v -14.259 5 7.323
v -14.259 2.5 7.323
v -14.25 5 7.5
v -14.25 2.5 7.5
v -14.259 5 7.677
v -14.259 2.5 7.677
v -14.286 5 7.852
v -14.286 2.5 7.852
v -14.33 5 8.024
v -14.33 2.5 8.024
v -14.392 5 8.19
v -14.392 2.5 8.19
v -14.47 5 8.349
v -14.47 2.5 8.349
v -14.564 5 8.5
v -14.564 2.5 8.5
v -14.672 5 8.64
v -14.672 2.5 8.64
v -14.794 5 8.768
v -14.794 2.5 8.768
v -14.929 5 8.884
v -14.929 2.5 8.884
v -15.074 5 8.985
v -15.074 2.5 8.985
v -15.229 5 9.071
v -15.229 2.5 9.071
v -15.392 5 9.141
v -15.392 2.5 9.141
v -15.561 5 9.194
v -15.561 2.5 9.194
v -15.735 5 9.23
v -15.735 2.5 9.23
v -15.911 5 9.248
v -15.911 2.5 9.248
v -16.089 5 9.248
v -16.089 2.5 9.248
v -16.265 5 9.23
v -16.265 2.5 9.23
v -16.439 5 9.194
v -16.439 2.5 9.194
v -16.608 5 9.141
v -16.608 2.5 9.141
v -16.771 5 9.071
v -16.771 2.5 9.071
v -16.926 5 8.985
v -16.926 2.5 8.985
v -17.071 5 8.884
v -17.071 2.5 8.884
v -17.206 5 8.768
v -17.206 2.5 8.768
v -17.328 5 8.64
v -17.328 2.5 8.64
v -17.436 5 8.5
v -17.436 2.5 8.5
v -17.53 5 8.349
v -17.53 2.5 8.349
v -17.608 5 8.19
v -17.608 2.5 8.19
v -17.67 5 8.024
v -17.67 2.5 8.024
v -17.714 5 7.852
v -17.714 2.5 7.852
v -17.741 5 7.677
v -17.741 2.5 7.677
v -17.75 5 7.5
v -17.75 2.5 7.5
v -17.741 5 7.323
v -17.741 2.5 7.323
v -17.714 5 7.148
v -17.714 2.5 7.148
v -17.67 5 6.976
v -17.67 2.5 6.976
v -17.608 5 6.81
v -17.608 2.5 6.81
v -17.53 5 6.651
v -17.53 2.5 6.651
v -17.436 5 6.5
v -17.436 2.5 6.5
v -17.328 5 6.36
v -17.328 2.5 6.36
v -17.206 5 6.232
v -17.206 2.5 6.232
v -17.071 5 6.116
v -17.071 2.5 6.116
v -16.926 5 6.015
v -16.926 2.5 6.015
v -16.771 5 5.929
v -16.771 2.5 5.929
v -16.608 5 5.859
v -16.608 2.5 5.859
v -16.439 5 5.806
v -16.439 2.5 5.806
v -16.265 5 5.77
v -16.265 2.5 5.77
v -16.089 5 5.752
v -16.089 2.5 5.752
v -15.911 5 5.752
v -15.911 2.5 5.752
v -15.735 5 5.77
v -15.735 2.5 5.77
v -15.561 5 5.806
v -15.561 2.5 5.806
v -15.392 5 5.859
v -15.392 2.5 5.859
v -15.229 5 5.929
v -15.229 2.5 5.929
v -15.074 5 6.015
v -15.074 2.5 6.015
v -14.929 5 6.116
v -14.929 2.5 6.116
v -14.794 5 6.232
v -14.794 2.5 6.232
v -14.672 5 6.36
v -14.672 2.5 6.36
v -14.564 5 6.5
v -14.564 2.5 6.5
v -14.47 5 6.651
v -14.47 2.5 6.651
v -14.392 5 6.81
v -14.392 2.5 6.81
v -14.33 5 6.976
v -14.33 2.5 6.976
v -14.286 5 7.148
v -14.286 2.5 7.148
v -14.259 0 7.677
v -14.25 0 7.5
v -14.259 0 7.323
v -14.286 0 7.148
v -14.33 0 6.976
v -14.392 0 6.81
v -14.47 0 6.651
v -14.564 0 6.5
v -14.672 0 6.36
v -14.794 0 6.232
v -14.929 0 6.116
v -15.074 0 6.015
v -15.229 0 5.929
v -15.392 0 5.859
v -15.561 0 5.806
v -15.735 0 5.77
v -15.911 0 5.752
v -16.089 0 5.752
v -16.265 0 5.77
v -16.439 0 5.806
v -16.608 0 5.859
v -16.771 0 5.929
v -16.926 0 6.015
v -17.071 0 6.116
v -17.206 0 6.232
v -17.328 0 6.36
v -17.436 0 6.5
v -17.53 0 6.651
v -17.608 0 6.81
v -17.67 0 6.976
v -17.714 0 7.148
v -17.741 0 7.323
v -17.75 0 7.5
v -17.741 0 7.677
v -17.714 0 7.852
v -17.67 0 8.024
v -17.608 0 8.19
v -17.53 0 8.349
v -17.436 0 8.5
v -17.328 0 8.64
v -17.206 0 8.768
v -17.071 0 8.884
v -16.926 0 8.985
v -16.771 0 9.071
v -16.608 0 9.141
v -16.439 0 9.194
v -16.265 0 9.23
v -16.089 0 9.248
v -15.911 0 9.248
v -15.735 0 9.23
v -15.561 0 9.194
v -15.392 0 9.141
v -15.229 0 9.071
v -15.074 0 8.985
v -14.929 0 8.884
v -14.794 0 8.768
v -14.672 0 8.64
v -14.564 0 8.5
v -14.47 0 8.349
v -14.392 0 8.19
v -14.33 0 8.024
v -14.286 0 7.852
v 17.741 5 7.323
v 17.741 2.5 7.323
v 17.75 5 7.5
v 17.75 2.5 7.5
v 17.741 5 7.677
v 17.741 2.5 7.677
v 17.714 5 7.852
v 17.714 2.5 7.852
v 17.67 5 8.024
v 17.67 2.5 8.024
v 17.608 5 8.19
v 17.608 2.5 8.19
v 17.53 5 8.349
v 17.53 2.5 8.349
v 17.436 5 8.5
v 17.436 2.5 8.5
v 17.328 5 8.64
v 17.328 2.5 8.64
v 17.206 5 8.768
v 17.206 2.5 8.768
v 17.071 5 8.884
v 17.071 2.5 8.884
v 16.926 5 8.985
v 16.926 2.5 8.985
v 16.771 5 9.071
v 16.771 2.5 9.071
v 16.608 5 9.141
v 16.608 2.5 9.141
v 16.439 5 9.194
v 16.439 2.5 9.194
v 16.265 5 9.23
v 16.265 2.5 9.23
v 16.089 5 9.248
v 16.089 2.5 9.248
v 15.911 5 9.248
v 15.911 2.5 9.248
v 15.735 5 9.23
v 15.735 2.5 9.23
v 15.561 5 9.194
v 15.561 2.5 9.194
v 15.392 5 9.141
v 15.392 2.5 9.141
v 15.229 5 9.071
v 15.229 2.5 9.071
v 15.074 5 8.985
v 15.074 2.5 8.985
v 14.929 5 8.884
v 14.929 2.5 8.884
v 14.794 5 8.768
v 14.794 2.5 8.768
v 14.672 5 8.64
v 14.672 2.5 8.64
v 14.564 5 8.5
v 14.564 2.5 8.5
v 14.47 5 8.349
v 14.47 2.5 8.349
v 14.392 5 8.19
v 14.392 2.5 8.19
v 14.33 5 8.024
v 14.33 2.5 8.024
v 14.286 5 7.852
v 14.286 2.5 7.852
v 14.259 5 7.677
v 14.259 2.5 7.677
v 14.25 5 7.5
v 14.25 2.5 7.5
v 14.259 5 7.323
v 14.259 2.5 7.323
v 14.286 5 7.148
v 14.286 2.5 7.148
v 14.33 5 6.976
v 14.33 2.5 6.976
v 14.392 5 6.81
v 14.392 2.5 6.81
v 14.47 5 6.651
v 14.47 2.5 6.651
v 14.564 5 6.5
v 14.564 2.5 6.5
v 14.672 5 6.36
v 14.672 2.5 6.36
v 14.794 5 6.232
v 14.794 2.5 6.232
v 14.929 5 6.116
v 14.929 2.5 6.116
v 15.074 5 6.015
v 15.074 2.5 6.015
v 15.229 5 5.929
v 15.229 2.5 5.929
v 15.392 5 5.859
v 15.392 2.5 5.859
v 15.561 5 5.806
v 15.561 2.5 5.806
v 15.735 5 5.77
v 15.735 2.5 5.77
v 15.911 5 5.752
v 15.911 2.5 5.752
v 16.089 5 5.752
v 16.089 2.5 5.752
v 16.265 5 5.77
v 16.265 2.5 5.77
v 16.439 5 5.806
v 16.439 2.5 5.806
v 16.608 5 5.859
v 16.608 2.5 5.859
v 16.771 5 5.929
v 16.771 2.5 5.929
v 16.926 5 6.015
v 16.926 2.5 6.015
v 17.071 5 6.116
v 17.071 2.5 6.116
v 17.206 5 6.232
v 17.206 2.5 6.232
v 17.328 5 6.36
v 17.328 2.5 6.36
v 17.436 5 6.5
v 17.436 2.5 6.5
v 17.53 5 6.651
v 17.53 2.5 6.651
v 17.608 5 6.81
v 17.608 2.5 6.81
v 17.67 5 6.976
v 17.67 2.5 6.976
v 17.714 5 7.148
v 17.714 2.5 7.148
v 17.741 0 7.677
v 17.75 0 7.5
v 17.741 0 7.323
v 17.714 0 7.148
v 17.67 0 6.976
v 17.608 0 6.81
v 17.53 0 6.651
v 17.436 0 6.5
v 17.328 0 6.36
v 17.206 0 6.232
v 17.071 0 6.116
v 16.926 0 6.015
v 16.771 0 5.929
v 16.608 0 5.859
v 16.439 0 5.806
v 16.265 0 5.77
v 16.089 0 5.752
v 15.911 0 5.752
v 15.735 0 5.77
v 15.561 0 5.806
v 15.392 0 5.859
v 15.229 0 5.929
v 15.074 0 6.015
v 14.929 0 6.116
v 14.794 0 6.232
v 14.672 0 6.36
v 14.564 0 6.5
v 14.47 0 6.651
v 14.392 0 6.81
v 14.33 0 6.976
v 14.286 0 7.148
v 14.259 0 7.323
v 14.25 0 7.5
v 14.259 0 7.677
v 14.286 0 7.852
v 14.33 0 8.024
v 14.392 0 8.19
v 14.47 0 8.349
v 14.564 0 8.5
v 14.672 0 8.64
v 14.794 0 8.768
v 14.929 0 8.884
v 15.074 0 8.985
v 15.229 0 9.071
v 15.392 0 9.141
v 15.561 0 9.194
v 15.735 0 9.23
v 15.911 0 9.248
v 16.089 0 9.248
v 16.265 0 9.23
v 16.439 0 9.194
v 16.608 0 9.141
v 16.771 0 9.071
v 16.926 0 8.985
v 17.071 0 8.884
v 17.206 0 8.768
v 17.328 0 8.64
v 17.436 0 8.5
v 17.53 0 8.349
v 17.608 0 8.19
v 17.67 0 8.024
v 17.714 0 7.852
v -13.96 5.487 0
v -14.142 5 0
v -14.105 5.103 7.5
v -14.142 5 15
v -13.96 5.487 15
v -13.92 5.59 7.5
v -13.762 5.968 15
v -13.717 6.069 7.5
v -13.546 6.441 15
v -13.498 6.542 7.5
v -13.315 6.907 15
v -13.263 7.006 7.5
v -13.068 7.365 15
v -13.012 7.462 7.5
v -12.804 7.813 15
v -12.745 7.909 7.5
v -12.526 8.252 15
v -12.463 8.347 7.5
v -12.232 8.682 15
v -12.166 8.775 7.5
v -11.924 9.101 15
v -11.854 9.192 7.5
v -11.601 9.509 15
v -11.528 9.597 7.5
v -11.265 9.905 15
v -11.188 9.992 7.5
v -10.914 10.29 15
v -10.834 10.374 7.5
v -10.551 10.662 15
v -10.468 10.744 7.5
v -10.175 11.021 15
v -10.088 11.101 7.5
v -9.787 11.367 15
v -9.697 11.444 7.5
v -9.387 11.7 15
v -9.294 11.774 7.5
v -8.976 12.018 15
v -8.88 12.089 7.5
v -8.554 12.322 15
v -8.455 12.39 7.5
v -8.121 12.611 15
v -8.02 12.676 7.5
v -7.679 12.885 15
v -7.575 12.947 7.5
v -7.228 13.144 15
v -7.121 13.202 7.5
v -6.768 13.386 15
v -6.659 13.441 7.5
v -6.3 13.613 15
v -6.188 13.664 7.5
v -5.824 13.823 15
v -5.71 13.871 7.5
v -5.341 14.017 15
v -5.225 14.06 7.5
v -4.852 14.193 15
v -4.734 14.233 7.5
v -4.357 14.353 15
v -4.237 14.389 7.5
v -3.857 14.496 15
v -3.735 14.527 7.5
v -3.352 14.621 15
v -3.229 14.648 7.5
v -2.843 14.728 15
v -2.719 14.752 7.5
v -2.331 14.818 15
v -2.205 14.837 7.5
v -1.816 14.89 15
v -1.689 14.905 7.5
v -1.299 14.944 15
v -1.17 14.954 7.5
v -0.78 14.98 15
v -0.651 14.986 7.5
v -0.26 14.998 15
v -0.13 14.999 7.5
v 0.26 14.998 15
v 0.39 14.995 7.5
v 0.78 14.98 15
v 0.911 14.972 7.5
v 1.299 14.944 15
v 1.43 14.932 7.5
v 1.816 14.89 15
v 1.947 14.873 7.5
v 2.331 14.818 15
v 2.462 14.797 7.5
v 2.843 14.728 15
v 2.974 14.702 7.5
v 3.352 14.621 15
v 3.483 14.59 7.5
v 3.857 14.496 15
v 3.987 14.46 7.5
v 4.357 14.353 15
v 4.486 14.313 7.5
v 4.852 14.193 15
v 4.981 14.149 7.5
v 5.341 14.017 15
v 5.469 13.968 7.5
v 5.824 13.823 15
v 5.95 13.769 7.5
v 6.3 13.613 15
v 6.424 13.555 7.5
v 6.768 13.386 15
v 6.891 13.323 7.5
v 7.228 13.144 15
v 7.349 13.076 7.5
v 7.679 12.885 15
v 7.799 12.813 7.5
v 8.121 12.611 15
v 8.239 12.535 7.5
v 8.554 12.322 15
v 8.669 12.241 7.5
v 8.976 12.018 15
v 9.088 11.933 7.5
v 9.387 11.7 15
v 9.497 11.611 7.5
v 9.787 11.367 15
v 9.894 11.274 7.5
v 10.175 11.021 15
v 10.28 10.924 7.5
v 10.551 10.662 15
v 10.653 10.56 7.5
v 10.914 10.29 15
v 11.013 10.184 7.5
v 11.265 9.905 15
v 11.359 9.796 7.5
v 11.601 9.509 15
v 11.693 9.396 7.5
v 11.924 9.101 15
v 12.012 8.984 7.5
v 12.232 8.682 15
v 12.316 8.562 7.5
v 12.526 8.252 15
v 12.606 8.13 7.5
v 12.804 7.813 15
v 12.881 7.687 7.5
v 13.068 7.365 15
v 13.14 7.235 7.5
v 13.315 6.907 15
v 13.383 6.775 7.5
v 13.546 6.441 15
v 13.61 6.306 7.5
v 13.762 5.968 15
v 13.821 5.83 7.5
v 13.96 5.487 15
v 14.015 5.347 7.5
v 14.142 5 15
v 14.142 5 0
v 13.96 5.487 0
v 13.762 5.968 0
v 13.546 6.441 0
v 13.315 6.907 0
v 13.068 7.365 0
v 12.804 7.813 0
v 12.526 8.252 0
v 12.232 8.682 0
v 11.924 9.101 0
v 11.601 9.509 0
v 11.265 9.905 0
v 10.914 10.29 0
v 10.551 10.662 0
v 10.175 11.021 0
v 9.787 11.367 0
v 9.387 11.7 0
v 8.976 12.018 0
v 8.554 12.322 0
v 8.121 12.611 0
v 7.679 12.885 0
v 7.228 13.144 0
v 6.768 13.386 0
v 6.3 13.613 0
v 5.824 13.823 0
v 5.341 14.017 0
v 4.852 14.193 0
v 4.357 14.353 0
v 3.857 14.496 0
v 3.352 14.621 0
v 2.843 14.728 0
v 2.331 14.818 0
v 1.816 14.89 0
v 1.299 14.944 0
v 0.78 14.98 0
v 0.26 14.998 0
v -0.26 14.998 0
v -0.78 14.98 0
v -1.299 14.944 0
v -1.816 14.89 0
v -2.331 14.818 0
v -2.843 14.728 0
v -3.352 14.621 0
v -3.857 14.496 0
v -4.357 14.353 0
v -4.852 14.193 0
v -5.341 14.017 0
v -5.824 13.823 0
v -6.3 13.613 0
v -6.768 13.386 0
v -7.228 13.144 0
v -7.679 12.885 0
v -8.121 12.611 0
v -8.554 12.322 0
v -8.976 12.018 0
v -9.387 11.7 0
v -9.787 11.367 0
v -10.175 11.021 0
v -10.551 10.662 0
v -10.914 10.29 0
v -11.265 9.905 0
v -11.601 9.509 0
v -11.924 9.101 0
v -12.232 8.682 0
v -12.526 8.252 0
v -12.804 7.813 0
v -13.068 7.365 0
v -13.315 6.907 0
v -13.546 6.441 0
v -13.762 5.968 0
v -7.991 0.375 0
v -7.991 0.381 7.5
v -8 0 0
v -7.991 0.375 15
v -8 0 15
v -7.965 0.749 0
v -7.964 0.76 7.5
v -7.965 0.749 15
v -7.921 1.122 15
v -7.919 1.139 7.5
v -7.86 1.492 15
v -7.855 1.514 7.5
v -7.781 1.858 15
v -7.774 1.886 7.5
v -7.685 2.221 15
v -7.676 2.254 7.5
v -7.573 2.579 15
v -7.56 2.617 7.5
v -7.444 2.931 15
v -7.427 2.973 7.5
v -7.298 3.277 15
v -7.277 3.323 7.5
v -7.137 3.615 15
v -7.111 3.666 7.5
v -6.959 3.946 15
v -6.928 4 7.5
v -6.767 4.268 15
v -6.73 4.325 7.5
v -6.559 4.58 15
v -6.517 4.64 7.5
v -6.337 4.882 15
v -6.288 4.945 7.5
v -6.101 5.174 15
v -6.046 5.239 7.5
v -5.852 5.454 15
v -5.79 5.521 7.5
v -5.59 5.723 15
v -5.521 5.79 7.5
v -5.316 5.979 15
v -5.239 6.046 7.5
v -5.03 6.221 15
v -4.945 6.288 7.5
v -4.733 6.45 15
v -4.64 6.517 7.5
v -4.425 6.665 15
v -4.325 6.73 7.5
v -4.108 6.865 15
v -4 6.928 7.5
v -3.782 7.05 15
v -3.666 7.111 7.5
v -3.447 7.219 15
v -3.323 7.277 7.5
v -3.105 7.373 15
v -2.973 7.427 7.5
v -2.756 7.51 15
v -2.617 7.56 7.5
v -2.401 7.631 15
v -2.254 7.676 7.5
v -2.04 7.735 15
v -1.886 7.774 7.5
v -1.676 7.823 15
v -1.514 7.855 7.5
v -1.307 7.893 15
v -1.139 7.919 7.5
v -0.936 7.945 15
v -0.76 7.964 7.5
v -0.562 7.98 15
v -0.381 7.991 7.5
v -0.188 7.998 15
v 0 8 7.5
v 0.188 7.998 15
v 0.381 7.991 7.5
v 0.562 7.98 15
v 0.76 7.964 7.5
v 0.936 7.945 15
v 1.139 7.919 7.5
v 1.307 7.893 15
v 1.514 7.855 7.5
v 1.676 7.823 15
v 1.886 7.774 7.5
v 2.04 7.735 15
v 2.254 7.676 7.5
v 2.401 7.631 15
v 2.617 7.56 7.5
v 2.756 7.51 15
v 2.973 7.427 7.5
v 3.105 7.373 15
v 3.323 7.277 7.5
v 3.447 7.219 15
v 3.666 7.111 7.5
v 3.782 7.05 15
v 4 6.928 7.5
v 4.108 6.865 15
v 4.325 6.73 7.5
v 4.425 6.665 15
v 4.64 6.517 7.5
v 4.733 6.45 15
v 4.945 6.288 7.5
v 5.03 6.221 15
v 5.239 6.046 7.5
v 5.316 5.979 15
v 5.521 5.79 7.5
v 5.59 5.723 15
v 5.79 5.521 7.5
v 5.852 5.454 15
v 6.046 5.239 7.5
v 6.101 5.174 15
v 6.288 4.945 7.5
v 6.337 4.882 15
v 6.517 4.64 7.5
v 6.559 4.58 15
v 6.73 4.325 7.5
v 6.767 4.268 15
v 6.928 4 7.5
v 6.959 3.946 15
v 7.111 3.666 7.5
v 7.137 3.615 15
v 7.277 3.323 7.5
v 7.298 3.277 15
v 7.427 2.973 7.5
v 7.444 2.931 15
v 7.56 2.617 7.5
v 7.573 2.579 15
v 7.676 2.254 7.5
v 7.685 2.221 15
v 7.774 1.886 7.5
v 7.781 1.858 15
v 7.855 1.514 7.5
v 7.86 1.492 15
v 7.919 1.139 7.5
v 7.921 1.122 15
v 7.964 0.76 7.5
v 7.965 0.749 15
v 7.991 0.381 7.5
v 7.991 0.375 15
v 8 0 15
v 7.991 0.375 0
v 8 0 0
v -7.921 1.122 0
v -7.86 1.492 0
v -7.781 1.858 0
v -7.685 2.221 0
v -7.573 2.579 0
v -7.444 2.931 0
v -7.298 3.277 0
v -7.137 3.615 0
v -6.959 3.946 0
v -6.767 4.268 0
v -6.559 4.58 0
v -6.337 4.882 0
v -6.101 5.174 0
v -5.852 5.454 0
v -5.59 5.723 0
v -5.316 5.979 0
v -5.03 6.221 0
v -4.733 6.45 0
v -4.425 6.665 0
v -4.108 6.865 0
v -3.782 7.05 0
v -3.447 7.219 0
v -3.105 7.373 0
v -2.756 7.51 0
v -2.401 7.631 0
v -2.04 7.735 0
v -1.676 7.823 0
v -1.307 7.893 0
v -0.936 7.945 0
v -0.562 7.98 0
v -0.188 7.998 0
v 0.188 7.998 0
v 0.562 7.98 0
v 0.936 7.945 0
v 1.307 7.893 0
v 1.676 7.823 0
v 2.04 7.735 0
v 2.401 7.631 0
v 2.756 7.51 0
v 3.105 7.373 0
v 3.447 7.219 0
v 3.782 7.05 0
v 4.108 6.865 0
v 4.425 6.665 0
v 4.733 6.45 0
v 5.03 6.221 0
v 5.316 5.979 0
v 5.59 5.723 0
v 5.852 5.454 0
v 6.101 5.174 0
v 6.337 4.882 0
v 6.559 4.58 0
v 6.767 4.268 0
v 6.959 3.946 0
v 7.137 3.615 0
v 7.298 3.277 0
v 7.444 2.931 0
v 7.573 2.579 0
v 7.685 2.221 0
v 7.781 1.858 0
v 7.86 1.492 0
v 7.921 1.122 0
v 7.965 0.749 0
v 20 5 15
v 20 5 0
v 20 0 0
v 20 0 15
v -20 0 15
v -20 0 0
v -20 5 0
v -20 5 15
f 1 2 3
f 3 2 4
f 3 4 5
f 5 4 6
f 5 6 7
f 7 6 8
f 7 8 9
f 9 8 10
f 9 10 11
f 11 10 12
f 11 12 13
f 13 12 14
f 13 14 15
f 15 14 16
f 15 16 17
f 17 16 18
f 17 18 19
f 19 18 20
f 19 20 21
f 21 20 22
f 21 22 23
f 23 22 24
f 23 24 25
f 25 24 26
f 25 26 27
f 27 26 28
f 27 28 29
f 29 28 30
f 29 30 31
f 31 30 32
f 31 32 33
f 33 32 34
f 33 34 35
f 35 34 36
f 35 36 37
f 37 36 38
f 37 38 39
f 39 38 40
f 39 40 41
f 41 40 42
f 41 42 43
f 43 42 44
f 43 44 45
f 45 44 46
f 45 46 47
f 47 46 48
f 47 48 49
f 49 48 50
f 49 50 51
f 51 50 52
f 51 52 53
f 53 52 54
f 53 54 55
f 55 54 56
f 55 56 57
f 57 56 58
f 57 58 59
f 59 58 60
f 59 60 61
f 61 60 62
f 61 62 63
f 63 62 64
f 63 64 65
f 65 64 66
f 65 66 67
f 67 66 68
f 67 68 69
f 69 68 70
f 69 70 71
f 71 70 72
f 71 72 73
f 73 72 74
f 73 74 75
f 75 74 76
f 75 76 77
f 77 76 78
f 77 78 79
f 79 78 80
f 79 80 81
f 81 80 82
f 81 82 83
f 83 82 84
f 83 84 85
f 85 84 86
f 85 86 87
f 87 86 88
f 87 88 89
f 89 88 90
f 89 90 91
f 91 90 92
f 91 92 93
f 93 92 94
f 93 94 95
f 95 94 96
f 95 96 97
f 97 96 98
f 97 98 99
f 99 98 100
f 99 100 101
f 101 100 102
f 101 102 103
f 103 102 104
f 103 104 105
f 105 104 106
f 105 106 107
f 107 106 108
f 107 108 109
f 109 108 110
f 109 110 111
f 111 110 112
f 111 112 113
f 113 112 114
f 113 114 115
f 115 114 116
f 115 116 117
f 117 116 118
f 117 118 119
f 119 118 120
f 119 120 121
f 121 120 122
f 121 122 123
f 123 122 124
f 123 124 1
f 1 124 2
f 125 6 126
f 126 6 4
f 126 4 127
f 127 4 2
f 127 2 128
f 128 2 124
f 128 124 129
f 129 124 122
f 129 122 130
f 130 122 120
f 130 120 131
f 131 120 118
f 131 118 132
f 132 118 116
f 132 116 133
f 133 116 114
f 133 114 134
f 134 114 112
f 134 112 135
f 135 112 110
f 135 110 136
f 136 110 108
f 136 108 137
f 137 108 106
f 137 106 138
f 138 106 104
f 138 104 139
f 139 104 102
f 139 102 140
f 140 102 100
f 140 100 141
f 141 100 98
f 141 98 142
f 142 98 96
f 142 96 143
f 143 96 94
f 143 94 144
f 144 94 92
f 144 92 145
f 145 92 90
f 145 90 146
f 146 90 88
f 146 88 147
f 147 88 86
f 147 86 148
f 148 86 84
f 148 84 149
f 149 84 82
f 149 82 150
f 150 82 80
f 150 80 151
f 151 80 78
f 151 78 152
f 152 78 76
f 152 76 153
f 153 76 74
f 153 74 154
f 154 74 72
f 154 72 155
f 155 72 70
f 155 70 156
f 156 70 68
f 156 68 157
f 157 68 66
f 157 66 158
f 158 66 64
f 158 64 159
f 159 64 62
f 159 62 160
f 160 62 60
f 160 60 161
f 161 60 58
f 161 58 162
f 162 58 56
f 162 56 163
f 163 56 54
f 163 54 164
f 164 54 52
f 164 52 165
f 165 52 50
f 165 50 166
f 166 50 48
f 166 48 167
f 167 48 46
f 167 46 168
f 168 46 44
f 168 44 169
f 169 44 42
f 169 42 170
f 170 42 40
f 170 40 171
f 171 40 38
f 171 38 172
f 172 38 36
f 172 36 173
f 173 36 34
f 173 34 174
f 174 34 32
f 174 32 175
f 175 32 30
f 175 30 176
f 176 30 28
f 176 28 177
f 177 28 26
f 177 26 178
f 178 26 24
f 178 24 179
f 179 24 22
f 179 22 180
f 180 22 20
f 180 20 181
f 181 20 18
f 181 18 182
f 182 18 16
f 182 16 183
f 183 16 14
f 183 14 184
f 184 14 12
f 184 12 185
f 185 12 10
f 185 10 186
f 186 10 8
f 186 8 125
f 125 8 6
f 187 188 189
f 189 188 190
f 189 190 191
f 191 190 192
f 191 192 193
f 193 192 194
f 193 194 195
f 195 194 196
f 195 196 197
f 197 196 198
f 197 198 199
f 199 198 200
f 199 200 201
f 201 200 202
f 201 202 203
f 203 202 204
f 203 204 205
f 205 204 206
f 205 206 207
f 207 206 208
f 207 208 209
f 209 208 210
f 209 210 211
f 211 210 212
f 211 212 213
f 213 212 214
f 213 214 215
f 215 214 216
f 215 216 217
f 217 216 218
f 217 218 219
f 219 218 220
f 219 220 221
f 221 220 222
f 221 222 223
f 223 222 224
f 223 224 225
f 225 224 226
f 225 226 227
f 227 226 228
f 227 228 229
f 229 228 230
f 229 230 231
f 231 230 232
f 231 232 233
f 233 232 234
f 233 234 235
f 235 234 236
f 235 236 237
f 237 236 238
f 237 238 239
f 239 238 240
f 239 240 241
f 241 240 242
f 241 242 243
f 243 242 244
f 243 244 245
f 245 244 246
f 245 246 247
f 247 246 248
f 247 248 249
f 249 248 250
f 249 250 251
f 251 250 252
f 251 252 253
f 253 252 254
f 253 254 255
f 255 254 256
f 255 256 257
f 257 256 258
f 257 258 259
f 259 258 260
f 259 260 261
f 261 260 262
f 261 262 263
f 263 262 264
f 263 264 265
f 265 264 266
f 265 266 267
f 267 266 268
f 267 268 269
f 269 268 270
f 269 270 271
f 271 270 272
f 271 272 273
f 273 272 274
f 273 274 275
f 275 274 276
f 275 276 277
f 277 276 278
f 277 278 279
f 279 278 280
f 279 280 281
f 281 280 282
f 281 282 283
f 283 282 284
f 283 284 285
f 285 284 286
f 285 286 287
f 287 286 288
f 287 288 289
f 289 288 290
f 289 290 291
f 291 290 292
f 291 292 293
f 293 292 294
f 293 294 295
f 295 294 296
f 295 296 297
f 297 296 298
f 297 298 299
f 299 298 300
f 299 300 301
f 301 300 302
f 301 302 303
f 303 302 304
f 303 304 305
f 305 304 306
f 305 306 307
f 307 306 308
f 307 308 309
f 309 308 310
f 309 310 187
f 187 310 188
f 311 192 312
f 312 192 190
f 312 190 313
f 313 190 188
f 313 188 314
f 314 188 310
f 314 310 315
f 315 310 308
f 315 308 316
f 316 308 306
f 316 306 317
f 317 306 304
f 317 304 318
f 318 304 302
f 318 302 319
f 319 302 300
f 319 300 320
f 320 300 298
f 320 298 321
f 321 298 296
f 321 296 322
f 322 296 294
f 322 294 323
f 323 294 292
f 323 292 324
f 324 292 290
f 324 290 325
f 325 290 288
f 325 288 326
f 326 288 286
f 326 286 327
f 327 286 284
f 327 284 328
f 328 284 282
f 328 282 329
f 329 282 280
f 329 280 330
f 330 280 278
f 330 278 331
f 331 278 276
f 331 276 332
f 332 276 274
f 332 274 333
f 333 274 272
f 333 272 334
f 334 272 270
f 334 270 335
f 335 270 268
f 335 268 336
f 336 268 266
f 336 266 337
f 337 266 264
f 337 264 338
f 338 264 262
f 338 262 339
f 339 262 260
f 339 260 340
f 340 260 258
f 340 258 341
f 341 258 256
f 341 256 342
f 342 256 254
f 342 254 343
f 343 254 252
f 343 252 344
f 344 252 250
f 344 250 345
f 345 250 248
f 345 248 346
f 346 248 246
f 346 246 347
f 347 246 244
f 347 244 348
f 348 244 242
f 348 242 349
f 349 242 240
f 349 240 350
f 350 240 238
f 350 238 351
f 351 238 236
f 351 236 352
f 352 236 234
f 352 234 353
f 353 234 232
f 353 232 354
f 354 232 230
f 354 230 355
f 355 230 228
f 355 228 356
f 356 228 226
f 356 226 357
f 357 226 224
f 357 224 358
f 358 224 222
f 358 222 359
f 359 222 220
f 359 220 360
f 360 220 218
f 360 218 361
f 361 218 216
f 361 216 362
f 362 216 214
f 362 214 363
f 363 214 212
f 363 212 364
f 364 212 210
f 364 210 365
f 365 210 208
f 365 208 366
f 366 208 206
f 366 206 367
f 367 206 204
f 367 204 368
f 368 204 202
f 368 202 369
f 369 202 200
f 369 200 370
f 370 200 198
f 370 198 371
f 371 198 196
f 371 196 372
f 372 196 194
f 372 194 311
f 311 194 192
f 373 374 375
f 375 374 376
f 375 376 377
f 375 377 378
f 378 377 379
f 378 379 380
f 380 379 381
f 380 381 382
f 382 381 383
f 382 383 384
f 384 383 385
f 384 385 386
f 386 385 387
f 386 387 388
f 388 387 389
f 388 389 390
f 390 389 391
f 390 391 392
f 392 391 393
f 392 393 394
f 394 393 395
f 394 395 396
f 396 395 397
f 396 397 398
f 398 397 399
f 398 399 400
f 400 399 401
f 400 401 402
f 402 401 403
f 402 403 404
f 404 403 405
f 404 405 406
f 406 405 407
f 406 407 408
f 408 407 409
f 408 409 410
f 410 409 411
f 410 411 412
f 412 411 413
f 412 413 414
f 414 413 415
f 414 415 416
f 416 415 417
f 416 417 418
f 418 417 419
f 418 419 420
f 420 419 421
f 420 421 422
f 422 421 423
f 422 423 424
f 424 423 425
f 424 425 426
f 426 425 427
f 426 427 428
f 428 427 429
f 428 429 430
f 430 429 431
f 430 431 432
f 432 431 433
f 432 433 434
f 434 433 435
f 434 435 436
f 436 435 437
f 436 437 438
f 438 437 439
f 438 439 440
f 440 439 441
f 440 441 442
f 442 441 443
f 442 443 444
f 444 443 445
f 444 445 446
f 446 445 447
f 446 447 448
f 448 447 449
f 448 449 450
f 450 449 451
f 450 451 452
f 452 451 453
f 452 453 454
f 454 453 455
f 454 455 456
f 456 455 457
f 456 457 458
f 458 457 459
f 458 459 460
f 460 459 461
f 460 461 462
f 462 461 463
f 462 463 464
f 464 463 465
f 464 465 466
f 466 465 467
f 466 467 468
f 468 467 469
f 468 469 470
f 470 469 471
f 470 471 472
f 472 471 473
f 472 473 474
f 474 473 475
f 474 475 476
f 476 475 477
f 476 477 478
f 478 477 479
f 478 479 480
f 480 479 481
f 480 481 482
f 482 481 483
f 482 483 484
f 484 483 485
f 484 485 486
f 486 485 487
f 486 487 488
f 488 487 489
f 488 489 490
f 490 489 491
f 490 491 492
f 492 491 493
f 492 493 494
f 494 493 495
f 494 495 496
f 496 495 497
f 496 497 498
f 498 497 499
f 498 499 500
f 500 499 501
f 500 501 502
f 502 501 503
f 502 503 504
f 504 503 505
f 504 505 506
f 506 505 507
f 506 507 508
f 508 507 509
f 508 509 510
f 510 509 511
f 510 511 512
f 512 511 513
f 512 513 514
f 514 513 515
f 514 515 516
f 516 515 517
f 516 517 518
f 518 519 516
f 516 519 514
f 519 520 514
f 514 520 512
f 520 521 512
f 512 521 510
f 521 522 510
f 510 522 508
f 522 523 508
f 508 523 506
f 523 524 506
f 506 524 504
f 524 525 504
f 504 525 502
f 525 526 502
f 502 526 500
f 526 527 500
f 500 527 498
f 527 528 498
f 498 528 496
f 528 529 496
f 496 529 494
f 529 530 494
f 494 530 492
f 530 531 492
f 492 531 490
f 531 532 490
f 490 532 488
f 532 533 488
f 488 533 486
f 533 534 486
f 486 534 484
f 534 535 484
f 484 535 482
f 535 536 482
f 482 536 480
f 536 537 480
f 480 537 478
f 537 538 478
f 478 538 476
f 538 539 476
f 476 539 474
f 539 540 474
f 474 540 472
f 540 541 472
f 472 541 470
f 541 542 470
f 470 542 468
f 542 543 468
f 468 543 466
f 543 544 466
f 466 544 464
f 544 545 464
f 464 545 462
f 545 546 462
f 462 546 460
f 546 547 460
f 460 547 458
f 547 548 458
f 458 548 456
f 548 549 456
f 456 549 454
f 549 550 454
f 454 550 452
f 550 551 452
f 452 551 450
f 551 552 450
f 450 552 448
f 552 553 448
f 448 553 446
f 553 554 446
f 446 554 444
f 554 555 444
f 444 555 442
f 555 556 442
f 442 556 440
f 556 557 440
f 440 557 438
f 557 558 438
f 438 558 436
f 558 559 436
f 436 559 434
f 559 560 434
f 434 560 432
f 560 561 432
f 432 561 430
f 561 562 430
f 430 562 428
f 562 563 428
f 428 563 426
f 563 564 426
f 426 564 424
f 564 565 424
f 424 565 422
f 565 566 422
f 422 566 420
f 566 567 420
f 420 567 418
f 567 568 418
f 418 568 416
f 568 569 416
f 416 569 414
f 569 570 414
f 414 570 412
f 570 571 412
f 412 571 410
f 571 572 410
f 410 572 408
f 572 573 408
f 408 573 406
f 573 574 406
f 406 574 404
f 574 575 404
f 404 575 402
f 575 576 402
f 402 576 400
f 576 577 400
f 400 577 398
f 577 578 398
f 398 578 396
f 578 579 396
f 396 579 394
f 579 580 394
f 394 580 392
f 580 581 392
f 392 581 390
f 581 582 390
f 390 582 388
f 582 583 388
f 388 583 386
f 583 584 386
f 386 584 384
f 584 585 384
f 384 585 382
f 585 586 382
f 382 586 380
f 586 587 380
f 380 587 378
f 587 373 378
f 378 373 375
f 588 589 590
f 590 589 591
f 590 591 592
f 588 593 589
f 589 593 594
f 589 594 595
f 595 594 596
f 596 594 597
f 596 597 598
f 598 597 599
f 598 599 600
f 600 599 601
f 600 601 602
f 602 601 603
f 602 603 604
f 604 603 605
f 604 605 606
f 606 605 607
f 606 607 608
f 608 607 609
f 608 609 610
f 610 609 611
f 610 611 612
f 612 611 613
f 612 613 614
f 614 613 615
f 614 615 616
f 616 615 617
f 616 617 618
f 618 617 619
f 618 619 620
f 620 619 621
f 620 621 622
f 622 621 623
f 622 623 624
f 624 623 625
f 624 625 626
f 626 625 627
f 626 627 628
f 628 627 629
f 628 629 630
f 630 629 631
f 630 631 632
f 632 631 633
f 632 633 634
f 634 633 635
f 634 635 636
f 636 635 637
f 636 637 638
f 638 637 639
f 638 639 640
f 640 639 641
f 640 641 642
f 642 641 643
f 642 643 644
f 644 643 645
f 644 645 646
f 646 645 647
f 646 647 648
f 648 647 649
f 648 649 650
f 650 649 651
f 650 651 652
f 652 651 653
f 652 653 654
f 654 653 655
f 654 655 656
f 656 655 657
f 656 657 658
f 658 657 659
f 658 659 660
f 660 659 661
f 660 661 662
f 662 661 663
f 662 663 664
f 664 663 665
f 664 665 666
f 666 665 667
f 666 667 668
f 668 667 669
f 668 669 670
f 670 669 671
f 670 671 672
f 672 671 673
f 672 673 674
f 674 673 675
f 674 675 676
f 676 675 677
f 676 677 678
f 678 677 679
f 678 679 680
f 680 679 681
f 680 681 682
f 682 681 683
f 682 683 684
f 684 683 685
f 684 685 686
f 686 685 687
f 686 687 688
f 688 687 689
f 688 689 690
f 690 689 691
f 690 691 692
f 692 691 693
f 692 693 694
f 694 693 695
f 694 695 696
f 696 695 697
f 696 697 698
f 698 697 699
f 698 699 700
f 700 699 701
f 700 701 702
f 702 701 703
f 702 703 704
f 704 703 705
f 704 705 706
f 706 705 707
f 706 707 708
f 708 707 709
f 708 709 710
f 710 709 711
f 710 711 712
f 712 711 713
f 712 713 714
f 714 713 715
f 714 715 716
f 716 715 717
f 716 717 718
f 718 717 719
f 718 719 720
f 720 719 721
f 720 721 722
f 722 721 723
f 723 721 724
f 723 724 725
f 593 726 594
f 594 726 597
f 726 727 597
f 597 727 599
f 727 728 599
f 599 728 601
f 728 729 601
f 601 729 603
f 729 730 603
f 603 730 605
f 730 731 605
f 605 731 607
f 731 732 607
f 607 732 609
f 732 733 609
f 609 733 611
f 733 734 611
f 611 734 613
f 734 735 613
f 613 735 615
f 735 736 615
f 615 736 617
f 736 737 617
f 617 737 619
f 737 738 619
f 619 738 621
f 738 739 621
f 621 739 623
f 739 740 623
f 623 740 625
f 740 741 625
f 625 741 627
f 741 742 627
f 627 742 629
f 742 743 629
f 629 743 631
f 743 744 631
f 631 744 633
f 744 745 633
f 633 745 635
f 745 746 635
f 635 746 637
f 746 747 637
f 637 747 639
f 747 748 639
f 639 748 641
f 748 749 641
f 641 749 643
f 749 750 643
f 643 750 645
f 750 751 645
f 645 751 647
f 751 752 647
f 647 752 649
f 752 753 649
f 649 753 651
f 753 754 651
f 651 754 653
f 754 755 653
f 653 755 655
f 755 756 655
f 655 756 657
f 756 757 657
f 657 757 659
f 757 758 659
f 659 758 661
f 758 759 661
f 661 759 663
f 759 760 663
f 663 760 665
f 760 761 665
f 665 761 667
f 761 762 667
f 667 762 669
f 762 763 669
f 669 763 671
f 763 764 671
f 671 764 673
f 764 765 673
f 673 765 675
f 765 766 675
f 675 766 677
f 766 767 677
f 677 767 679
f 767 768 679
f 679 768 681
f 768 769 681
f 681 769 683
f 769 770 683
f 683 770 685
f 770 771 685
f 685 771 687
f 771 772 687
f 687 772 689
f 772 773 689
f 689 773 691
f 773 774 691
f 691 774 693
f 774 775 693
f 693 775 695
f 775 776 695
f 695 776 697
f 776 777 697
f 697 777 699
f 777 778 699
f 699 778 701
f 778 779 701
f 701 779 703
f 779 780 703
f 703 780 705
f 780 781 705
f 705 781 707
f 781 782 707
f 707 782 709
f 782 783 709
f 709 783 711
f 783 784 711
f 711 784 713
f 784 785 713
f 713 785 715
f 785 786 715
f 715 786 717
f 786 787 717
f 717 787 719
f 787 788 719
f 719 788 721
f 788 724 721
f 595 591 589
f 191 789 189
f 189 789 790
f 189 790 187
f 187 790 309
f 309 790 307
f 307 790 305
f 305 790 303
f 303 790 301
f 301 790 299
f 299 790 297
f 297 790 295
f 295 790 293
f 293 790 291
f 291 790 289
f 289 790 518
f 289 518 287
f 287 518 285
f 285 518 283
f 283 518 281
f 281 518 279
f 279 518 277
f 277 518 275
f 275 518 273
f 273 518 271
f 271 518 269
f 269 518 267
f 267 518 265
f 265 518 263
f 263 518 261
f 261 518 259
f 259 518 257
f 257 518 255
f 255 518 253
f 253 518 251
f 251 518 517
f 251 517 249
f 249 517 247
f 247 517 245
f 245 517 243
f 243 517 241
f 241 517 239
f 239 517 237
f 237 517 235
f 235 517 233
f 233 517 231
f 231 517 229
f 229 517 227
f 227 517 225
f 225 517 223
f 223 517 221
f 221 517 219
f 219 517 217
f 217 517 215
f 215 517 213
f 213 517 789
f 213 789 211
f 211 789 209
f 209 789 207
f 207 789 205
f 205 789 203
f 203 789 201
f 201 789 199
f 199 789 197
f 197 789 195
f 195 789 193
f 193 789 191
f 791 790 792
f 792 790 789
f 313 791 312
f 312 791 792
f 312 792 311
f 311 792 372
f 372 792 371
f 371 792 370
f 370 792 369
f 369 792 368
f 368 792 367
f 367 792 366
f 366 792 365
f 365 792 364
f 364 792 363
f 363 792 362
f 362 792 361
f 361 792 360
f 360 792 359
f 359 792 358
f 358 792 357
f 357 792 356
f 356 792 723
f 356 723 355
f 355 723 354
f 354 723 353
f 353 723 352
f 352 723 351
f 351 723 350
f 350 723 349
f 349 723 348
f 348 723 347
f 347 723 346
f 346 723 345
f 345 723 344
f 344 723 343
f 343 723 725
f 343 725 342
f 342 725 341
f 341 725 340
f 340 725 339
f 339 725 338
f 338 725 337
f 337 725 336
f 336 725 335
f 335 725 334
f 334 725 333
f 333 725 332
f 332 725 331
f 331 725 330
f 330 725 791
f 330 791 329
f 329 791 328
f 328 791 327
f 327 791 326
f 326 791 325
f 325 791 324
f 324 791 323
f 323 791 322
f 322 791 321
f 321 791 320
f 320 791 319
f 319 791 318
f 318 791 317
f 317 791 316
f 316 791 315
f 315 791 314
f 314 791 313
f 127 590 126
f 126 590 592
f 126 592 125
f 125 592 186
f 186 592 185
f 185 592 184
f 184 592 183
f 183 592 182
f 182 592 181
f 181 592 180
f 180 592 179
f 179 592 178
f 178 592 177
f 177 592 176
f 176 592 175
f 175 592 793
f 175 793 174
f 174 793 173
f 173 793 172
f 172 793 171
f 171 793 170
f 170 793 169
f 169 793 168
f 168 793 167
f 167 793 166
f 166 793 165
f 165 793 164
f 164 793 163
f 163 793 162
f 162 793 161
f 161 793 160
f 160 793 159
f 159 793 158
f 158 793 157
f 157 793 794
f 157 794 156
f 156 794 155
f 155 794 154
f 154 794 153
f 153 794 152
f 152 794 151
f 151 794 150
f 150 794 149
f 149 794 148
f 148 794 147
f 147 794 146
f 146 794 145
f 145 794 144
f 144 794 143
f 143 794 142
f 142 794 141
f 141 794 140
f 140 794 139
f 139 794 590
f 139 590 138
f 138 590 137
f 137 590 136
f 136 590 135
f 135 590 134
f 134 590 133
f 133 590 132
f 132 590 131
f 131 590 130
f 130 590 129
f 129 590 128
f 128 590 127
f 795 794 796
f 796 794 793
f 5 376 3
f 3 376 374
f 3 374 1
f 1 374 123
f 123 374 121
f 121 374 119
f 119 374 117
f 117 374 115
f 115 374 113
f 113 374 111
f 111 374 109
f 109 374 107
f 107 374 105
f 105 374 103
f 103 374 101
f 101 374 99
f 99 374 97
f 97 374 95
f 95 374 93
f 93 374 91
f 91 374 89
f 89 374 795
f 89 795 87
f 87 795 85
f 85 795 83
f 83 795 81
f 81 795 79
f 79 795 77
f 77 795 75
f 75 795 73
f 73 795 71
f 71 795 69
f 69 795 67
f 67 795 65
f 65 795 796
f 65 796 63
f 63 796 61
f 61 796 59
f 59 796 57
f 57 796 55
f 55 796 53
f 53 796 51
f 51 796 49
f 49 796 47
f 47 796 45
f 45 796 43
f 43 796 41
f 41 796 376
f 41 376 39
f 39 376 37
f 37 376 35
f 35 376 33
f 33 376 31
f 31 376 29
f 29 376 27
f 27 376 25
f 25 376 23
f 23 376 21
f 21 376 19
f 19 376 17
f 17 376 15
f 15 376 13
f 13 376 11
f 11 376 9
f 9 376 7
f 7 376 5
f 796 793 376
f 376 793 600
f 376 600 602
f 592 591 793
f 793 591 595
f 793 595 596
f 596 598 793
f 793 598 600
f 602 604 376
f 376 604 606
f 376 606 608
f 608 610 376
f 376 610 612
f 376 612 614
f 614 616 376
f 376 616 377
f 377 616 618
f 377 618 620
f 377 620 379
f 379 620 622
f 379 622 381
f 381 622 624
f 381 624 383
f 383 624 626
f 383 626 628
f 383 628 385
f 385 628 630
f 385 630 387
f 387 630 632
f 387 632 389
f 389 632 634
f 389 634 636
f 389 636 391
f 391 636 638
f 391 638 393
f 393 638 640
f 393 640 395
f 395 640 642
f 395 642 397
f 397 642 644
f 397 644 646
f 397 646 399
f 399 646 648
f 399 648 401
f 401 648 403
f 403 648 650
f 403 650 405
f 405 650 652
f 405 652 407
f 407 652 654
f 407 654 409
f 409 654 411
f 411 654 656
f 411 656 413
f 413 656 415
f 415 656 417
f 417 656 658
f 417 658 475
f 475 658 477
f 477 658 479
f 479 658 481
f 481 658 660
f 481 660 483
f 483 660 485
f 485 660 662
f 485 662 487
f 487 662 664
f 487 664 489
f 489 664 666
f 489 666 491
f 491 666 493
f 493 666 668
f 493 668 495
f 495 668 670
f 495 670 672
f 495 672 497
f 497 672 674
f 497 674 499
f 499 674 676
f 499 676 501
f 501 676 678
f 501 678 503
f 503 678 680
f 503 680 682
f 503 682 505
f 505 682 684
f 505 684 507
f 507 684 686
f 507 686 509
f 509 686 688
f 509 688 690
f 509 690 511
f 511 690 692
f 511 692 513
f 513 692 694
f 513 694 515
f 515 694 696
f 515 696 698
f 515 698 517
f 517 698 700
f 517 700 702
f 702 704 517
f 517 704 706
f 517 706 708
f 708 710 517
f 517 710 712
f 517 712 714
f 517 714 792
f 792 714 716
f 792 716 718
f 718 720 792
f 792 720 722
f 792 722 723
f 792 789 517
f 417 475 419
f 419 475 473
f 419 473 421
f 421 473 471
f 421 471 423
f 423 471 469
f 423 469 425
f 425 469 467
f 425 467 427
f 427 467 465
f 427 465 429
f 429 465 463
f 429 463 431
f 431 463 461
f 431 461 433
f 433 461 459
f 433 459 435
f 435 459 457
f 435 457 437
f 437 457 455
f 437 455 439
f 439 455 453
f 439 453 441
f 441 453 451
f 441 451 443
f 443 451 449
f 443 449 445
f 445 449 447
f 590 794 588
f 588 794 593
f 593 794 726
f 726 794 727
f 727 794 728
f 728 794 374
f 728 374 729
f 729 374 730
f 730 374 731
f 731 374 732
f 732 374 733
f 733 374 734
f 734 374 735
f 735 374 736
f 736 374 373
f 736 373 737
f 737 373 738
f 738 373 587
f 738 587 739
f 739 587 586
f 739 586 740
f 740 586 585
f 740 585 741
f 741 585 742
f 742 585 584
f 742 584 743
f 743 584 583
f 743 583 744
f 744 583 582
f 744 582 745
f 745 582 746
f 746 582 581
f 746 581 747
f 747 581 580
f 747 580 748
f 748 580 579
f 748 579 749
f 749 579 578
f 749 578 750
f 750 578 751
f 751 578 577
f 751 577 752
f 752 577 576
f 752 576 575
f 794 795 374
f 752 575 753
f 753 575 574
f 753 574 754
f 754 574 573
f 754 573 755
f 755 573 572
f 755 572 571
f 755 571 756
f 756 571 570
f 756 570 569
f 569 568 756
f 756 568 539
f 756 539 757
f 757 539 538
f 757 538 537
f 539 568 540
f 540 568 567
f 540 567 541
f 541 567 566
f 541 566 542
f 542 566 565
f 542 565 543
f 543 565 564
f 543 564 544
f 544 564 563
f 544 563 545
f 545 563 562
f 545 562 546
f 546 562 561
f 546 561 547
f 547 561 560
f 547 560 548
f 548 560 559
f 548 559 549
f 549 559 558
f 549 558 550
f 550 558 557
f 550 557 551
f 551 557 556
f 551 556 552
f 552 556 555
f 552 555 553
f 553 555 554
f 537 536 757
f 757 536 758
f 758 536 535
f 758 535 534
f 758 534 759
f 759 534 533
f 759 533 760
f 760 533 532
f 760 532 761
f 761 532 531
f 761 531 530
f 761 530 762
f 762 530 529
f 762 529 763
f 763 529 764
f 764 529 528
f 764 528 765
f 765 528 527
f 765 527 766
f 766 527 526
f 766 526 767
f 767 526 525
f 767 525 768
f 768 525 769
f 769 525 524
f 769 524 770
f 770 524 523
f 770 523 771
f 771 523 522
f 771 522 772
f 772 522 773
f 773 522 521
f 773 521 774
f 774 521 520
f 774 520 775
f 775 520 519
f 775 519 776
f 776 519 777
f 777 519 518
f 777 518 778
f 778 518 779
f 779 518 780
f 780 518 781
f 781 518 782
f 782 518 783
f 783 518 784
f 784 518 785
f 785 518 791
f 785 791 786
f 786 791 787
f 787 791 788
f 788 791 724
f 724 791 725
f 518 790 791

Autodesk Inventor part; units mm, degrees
ref_plane "YZ Plane" through (0, 0, 0) normal (1, 0, 0) x (0, 1, 0)
ref_plane "XZ Plane" through (0, 0, 0) normal (0, 1, 0) x (-1, 0, 0)
ref_plane "XY Plane" through (0, 0, 0) normal (0, 0, 1) x (1, 0, 0)
sketch "Sketch1" plane through (0, 0, 0) normal (0, 0, 1) x (1, 0, 0)
  arc A0 (8, 0) -> (-8, 0) centre (0, 0) ccw
  arc A1 (15, 0) -> (-15, 0) centre (0, 0) ccw
  line L0 (-8, 0) -> (-15, 0)
  line L1 (-15, 0) -> (-20, 0)
  line L2 (-20, 0) -> (-20, 5)
  line L3 (-20, 5) -> (-14.1421, 5)
  line L4 (8, 0) -> (15, 0)
  line L5 (15, 0) -> (20, 0)
  line L6 (20, 0) -> (20, 5)
  line L7 (20, 5) -> (14.1421, 5)
  dimension "d0" = 16
  dimension "d1" = 30
  dimension "d2" = 5
  dimension "d3" = 5
  dimension "d4" = 5
  dimension "d5" = 5
extrude "Extrusion1" add sketch "Sketch1" along normal blind 15
sketch "Sketch2" plane through (8, 0, 0) normal (0, -1, 0) x (1, 0, 0)
  line L0 (-28, 0) -> (-28, 15) projected
  line L1 (-28, 7.5) -> (-24, 7.5)
  line L2 (12, 0) -> (12, 15) projected
  line L3 (12, 7.5) -> (8, 7.5)
  circle A0 centre (-24, 7.5) radius 1.75
  circle A1 centre (8, 7.5) radius 1.75
  point P0 (-8, 0)
  dimension "d8" = 4
  dimension "d9" = 4
  dimension "d10" = 3.5
  dimension "d11" = 3.5
extrude "Extrusion2" cut sketch "Sketch2" against normal through all
properties part number "prism_holder_2"
